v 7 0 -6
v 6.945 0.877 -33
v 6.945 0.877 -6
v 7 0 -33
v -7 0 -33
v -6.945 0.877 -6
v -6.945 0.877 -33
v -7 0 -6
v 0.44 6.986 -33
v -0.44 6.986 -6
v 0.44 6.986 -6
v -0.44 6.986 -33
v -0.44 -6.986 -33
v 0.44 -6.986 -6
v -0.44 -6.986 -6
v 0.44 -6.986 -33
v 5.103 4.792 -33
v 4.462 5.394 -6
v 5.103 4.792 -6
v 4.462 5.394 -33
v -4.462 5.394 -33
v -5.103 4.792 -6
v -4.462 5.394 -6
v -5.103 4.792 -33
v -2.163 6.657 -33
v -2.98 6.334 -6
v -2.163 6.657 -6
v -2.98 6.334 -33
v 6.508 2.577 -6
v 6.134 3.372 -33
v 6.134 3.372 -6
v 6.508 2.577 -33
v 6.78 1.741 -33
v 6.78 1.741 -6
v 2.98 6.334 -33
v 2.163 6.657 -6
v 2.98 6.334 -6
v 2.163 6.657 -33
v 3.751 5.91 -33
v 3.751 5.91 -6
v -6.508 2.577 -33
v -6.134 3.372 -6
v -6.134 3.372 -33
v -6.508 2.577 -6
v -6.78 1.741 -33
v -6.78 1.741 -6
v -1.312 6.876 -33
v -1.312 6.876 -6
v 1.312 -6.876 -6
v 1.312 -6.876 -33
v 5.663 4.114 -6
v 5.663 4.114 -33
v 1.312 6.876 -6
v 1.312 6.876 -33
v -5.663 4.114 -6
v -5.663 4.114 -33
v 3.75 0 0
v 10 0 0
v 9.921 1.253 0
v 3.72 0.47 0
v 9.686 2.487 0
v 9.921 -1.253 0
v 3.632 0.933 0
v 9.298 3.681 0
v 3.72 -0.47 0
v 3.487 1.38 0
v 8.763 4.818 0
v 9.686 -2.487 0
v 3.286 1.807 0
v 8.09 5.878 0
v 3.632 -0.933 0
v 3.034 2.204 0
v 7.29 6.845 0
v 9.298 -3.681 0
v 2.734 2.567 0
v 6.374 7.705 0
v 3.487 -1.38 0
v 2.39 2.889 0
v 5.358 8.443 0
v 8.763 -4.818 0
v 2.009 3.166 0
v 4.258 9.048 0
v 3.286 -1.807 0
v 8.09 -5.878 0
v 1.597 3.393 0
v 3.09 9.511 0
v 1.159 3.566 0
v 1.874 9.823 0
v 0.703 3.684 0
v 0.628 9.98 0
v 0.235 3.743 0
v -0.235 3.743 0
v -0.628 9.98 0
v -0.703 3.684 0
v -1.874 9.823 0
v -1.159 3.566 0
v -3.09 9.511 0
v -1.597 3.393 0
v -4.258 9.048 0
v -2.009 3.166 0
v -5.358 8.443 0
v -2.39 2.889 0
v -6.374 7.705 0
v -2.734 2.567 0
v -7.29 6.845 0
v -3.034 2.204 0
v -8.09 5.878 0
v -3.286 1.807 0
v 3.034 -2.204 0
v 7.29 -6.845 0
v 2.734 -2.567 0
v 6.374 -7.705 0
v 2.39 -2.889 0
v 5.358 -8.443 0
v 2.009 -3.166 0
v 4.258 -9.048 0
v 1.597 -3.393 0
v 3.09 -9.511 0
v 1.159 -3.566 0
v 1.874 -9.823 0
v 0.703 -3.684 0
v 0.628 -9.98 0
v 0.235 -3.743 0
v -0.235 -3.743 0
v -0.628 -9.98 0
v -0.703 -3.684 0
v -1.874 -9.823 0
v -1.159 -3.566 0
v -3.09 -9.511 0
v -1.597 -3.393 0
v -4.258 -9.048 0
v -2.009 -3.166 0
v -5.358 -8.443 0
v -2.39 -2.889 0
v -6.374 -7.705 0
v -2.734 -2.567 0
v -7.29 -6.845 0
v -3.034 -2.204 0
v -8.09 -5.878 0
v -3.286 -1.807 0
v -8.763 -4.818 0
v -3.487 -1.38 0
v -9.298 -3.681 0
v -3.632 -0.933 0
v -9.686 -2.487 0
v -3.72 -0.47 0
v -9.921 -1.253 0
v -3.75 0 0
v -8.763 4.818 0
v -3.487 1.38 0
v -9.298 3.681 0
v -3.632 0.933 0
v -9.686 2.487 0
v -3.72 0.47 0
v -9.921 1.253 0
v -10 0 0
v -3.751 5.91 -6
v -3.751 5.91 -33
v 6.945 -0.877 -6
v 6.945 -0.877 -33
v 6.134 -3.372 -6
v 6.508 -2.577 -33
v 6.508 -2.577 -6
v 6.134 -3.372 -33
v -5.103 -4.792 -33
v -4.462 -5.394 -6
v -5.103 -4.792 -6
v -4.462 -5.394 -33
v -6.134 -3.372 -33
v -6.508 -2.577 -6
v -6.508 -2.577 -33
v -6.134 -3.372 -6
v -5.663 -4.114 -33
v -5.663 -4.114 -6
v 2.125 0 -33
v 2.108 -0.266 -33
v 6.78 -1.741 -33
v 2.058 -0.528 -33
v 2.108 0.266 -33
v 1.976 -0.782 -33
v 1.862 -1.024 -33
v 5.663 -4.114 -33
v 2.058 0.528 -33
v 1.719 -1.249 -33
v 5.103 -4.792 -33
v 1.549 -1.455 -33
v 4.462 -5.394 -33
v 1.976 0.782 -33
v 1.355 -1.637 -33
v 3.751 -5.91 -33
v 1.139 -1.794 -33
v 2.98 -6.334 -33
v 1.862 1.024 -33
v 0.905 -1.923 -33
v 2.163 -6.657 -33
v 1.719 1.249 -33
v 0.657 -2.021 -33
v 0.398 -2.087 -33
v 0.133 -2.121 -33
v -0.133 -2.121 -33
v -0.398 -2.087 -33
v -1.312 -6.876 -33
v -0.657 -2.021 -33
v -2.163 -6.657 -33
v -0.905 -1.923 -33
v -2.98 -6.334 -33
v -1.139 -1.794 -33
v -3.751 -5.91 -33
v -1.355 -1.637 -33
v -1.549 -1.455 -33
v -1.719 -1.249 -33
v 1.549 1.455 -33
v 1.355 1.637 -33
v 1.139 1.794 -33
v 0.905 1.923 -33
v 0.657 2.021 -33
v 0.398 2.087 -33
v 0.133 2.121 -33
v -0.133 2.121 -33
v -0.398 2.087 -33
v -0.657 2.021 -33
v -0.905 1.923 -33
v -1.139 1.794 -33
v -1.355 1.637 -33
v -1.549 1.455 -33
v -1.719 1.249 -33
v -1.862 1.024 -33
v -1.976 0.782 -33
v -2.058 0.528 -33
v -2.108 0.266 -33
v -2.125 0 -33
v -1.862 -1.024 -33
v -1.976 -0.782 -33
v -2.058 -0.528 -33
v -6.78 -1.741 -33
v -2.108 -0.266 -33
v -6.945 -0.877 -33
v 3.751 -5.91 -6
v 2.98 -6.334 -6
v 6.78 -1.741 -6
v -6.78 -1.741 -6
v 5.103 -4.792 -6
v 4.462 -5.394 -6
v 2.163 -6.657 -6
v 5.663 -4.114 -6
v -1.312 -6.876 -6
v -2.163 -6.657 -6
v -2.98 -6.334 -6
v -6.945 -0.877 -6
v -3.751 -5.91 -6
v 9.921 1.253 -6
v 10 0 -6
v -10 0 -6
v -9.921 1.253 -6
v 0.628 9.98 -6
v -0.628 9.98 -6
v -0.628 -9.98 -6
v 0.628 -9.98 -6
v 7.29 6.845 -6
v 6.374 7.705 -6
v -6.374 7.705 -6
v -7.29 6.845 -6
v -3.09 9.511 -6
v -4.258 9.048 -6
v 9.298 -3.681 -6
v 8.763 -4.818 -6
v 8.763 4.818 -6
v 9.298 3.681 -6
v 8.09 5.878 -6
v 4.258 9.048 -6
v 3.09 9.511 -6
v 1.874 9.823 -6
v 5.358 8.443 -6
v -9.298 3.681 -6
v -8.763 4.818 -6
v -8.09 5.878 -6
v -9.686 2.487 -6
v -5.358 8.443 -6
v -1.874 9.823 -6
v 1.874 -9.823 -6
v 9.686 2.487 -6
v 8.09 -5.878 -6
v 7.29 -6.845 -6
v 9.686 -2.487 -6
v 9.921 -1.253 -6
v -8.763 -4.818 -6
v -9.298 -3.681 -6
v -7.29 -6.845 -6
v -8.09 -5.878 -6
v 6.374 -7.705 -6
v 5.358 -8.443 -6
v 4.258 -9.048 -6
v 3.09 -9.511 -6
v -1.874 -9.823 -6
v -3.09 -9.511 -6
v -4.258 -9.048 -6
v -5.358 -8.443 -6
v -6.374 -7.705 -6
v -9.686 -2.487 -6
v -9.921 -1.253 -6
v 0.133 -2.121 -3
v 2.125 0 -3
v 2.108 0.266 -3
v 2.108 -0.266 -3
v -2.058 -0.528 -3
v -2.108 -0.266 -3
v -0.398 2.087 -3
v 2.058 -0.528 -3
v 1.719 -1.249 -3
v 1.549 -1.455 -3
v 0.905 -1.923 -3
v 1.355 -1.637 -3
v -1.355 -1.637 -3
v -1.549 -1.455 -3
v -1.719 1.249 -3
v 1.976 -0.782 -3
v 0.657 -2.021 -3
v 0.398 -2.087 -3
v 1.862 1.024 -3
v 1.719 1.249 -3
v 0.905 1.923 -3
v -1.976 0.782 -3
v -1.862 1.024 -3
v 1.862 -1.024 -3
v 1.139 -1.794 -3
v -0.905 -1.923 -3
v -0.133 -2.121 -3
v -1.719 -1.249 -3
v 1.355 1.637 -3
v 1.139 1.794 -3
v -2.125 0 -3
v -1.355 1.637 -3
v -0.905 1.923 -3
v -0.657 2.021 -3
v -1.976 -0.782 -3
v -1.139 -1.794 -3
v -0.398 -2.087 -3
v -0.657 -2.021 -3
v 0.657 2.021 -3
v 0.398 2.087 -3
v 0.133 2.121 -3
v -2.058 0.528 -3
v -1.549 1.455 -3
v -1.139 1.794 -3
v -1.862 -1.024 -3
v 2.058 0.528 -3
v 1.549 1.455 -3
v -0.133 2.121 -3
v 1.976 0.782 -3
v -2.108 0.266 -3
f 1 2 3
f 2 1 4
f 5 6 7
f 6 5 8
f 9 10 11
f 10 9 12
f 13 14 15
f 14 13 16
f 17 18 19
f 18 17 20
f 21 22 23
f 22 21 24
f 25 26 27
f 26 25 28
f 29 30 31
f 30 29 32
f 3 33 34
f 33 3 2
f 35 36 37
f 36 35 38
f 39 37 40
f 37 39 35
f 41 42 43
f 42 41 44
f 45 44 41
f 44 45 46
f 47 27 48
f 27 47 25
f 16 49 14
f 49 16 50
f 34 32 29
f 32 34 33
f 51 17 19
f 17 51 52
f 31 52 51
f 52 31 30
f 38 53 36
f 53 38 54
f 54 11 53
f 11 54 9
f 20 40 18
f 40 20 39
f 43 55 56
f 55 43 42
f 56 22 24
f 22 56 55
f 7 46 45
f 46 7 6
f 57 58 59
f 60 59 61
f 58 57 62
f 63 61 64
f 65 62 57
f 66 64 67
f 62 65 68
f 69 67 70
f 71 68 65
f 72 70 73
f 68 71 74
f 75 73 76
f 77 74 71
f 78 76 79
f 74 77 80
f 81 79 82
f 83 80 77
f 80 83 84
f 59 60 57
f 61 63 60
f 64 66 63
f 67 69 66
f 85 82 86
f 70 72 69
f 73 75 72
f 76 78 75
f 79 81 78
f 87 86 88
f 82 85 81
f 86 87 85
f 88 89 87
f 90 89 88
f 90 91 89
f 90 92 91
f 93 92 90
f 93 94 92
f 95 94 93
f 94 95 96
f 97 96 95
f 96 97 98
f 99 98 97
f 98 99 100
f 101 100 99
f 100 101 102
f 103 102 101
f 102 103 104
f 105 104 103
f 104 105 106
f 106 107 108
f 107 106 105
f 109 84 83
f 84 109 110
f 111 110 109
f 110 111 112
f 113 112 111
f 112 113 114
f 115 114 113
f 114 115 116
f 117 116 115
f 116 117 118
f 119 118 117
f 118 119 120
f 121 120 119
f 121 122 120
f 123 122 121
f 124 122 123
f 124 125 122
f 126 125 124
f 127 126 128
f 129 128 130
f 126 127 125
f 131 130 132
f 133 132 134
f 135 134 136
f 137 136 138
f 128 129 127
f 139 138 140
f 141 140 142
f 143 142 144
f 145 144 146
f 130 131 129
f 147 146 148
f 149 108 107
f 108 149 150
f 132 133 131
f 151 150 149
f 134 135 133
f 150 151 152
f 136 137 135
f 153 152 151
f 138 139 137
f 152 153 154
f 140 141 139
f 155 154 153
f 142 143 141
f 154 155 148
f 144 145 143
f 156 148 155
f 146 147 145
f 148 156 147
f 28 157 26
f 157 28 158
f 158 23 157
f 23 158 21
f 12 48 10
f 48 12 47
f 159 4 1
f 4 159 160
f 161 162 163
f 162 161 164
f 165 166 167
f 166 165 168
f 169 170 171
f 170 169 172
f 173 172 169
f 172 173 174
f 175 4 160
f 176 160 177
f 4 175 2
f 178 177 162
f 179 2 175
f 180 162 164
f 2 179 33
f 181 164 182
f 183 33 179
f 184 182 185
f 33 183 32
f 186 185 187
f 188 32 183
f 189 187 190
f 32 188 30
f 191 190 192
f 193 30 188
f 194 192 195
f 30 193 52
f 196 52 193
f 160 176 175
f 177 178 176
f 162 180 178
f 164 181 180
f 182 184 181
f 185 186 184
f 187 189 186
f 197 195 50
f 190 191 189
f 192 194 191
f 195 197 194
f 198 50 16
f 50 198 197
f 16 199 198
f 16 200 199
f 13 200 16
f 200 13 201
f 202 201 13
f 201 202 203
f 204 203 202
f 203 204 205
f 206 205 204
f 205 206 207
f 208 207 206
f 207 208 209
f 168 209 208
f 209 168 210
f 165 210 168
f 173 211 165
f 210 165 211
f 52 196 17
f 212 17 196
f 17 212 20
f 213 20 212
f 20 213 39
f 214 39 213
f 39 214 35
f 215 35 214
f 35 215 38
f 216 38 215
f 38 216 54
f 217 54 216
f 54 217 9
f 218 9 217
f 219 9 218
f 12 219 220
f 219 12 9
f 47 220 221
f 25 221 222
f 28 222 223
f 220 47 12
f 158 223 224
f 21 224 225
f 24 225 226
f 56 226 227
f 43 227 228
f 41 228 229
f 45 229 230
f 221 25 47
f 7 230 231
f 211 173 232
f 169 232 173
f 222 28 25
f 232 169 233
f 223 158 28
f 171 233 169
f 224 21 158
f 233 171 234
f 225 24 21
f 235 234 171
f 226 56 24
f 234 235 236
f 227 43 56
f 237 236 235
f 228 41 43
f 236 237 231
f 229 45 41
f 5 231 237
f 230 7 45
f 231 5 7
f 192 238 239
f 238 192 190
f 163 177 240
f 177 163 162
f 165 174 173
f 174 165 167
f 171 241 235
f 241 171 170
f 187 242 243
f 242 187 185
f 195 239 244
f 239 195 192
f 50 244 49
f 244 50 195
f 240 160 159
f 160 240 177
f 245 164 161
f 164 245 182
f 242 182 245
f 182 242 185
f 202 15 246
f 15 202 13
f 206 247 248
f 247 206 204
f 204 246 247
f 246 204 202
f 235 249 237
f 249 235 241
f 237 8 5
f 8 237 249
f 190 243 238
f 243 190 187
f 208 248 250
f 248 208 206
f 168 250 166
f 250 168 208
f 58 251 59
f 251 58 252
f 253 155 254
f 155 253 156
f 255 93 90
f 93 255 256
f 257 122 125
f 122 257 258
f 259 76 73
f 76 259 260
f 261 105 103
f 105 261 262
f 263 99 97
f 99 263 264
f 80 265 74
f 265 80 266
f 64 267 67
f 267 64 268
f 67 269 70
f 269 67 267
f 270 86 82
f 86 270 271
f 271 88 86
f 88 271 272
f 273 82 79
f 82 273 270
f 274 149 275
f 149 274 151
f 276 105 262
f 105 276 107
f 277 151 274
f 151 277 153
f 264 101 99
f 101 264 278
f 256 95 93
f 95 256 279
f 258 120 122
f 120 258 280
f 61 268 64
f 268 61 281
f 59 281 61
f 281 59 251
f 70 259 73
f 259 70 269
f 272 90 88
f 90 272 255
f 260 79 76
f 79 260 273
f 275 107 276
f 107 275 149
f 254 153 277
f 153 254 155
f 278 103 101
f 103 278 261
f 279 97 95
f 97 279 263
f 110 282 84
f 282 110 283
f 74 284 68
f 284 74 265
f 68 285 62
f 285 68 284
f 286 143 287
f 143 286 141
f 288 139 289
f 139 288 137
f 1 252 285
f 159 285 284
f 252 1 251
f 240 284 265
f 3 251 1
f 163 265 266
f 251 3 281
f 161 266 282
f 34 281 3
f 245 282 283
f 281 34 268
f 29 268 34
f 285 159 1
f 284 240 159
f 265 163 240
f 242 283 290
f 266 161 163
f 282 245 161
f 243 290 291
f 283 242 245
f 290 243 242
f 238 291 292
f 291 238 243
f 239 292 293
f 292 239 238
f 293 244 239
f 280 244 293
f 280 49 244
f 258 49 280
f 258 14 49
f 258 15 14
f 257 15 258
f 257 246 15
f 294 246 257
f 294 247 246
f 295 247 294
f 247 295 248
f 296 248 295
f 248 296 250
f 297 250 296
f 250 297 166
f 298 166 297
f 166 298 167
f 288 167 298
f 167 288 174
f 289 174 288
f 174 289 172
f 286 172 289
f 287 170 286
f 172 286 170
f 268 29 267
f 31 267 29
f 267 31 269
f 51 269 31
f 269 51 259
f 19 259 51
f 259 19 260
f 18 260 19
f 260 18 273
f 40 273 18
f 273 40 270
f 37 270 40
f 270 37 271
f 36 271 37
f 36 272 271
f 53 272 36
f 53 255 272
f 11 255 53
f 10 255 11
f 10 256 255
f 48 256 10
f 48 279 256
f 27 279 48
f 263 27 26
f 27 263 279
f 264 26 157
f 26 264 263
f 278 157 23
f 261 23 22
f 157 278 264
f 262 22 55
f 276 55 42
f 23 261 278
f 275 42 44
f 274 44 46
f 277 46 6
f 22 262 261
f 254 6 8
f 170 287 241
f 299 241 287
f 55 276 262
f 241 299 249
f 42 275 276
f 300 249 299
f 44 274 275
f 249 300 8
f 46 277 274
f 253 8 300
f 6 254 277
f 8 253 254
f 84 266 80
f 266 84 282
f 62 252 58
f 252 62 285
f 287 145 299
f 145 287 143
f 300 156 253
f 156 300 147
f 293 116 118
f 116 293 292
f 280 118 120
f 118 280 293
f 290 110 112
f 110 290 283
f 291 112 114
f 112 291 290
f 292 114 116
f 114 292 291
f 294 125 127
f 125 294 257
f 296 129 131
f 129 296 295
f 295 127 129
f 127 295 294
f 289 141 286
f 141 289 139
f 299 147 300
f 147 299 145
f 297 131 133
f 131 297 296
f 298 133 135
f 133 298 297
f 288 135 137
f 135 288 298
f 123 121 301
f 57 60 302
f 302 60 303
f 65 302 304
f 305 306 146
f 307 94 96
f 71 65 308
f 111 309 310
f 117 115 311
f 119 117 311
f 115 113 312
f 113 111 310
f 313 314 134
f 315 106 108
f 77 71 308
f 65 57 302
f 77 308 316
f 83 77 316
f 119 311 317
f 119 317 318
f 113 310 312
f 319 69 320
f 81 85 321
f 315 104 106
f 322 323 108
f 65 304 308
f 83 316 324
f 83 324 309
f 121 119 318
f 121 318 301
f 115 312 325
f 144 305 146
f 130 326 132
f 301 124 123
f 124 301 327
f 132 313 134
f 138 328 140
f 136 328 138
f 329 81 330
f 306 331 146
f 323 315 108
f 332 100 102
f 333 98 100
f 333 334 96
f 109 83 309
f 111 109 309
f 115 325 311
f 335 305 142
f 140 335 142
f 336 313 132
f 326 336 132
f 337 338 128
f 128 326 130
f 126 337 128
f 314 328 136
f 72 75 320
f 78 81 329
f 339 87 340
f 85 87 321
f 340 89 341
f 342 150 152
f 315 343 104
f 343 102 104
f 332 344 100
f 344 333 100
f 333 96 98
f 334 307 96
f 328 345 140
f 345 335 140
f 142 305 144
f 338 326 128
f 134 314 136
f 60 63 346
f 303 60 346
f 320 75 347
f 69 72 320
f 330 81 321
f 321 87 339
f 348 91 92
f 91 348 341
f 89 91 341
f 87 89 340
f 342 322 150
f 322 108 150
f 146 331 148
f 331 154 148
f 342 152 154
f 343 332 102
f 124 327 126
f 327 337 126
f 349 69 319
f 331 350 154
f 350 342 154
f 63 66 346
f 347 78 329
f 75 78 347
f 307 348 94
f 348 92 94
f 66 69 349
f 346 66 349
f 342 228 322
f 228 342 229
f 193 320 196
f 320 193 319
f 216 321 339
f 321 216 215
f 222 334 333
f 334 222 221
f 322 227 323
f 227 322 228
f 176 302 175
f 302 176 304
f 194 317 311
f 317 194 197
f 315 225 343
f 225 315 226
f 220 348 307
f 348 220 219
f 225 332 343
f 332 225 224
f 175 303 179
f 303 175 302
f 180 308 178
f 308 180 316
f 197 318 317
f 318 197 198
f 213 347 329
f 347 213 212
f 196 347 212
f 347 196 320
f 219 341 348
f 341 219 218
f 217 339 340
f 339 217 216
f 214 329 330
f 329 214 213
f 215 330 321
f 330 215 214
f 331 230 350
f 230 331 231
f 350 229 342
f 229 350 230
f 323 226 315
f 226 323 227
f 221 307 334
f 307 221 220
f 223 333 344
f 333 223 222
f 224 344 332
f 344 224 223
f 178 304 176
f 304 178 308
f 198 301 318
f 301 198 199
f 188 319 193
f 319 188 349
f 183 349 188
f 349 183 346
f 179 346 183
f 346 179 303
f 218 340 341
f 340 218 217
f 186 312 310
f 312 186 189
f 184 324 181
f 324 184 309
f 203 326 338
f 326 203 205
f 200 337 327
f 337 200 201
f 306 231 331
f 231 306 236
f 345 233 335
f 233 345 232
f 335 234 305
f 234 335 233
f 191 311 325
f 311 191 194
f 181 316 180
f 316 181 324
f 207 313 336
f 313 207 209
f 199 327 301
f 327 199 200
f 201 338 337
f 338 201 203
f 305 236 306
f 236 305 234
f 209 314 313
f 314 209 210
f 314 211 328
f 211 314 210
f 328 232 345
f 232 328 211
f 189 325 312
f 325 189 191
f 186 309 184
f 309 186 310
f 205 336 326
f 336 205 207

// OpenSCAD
$fn = 50;


difference() {
	union() {
		translate(v = [0, 0, -33.0000000000]) {
			cylinder(h = 33, r = 7.0000000000);
		}
		translate(v = [0, 0, -6.0000000000]) {
			cylinder(h = 6, r = 10.0000000000);
		}
	}
	union() {
		translate(v = [0, 0, 0]) {
			rotate(a = [0, 0, 0]) {
				difference() {
					union() {
						#translate(v = [0, 0, -33.0000000000]) {
							cylinder(h = 33, r = 2.0000000000);
						}
						#translate(v = [0, 0, -3]) {
							cylinder(h = 3, r1 = 2.1250000000, r2 = 3.7500000000);
						}
						#translate(v = [0, 0, -33.0000000000]) {
							cylinder(h = 33, r = 2.1250000000);
						}
						#translate(v = [0, 0, -33.0000000000]) {
							cylinder(h = 33, r = 2.0000000000);
						}
					}
					union();
				}
			}
		}
	}
}
